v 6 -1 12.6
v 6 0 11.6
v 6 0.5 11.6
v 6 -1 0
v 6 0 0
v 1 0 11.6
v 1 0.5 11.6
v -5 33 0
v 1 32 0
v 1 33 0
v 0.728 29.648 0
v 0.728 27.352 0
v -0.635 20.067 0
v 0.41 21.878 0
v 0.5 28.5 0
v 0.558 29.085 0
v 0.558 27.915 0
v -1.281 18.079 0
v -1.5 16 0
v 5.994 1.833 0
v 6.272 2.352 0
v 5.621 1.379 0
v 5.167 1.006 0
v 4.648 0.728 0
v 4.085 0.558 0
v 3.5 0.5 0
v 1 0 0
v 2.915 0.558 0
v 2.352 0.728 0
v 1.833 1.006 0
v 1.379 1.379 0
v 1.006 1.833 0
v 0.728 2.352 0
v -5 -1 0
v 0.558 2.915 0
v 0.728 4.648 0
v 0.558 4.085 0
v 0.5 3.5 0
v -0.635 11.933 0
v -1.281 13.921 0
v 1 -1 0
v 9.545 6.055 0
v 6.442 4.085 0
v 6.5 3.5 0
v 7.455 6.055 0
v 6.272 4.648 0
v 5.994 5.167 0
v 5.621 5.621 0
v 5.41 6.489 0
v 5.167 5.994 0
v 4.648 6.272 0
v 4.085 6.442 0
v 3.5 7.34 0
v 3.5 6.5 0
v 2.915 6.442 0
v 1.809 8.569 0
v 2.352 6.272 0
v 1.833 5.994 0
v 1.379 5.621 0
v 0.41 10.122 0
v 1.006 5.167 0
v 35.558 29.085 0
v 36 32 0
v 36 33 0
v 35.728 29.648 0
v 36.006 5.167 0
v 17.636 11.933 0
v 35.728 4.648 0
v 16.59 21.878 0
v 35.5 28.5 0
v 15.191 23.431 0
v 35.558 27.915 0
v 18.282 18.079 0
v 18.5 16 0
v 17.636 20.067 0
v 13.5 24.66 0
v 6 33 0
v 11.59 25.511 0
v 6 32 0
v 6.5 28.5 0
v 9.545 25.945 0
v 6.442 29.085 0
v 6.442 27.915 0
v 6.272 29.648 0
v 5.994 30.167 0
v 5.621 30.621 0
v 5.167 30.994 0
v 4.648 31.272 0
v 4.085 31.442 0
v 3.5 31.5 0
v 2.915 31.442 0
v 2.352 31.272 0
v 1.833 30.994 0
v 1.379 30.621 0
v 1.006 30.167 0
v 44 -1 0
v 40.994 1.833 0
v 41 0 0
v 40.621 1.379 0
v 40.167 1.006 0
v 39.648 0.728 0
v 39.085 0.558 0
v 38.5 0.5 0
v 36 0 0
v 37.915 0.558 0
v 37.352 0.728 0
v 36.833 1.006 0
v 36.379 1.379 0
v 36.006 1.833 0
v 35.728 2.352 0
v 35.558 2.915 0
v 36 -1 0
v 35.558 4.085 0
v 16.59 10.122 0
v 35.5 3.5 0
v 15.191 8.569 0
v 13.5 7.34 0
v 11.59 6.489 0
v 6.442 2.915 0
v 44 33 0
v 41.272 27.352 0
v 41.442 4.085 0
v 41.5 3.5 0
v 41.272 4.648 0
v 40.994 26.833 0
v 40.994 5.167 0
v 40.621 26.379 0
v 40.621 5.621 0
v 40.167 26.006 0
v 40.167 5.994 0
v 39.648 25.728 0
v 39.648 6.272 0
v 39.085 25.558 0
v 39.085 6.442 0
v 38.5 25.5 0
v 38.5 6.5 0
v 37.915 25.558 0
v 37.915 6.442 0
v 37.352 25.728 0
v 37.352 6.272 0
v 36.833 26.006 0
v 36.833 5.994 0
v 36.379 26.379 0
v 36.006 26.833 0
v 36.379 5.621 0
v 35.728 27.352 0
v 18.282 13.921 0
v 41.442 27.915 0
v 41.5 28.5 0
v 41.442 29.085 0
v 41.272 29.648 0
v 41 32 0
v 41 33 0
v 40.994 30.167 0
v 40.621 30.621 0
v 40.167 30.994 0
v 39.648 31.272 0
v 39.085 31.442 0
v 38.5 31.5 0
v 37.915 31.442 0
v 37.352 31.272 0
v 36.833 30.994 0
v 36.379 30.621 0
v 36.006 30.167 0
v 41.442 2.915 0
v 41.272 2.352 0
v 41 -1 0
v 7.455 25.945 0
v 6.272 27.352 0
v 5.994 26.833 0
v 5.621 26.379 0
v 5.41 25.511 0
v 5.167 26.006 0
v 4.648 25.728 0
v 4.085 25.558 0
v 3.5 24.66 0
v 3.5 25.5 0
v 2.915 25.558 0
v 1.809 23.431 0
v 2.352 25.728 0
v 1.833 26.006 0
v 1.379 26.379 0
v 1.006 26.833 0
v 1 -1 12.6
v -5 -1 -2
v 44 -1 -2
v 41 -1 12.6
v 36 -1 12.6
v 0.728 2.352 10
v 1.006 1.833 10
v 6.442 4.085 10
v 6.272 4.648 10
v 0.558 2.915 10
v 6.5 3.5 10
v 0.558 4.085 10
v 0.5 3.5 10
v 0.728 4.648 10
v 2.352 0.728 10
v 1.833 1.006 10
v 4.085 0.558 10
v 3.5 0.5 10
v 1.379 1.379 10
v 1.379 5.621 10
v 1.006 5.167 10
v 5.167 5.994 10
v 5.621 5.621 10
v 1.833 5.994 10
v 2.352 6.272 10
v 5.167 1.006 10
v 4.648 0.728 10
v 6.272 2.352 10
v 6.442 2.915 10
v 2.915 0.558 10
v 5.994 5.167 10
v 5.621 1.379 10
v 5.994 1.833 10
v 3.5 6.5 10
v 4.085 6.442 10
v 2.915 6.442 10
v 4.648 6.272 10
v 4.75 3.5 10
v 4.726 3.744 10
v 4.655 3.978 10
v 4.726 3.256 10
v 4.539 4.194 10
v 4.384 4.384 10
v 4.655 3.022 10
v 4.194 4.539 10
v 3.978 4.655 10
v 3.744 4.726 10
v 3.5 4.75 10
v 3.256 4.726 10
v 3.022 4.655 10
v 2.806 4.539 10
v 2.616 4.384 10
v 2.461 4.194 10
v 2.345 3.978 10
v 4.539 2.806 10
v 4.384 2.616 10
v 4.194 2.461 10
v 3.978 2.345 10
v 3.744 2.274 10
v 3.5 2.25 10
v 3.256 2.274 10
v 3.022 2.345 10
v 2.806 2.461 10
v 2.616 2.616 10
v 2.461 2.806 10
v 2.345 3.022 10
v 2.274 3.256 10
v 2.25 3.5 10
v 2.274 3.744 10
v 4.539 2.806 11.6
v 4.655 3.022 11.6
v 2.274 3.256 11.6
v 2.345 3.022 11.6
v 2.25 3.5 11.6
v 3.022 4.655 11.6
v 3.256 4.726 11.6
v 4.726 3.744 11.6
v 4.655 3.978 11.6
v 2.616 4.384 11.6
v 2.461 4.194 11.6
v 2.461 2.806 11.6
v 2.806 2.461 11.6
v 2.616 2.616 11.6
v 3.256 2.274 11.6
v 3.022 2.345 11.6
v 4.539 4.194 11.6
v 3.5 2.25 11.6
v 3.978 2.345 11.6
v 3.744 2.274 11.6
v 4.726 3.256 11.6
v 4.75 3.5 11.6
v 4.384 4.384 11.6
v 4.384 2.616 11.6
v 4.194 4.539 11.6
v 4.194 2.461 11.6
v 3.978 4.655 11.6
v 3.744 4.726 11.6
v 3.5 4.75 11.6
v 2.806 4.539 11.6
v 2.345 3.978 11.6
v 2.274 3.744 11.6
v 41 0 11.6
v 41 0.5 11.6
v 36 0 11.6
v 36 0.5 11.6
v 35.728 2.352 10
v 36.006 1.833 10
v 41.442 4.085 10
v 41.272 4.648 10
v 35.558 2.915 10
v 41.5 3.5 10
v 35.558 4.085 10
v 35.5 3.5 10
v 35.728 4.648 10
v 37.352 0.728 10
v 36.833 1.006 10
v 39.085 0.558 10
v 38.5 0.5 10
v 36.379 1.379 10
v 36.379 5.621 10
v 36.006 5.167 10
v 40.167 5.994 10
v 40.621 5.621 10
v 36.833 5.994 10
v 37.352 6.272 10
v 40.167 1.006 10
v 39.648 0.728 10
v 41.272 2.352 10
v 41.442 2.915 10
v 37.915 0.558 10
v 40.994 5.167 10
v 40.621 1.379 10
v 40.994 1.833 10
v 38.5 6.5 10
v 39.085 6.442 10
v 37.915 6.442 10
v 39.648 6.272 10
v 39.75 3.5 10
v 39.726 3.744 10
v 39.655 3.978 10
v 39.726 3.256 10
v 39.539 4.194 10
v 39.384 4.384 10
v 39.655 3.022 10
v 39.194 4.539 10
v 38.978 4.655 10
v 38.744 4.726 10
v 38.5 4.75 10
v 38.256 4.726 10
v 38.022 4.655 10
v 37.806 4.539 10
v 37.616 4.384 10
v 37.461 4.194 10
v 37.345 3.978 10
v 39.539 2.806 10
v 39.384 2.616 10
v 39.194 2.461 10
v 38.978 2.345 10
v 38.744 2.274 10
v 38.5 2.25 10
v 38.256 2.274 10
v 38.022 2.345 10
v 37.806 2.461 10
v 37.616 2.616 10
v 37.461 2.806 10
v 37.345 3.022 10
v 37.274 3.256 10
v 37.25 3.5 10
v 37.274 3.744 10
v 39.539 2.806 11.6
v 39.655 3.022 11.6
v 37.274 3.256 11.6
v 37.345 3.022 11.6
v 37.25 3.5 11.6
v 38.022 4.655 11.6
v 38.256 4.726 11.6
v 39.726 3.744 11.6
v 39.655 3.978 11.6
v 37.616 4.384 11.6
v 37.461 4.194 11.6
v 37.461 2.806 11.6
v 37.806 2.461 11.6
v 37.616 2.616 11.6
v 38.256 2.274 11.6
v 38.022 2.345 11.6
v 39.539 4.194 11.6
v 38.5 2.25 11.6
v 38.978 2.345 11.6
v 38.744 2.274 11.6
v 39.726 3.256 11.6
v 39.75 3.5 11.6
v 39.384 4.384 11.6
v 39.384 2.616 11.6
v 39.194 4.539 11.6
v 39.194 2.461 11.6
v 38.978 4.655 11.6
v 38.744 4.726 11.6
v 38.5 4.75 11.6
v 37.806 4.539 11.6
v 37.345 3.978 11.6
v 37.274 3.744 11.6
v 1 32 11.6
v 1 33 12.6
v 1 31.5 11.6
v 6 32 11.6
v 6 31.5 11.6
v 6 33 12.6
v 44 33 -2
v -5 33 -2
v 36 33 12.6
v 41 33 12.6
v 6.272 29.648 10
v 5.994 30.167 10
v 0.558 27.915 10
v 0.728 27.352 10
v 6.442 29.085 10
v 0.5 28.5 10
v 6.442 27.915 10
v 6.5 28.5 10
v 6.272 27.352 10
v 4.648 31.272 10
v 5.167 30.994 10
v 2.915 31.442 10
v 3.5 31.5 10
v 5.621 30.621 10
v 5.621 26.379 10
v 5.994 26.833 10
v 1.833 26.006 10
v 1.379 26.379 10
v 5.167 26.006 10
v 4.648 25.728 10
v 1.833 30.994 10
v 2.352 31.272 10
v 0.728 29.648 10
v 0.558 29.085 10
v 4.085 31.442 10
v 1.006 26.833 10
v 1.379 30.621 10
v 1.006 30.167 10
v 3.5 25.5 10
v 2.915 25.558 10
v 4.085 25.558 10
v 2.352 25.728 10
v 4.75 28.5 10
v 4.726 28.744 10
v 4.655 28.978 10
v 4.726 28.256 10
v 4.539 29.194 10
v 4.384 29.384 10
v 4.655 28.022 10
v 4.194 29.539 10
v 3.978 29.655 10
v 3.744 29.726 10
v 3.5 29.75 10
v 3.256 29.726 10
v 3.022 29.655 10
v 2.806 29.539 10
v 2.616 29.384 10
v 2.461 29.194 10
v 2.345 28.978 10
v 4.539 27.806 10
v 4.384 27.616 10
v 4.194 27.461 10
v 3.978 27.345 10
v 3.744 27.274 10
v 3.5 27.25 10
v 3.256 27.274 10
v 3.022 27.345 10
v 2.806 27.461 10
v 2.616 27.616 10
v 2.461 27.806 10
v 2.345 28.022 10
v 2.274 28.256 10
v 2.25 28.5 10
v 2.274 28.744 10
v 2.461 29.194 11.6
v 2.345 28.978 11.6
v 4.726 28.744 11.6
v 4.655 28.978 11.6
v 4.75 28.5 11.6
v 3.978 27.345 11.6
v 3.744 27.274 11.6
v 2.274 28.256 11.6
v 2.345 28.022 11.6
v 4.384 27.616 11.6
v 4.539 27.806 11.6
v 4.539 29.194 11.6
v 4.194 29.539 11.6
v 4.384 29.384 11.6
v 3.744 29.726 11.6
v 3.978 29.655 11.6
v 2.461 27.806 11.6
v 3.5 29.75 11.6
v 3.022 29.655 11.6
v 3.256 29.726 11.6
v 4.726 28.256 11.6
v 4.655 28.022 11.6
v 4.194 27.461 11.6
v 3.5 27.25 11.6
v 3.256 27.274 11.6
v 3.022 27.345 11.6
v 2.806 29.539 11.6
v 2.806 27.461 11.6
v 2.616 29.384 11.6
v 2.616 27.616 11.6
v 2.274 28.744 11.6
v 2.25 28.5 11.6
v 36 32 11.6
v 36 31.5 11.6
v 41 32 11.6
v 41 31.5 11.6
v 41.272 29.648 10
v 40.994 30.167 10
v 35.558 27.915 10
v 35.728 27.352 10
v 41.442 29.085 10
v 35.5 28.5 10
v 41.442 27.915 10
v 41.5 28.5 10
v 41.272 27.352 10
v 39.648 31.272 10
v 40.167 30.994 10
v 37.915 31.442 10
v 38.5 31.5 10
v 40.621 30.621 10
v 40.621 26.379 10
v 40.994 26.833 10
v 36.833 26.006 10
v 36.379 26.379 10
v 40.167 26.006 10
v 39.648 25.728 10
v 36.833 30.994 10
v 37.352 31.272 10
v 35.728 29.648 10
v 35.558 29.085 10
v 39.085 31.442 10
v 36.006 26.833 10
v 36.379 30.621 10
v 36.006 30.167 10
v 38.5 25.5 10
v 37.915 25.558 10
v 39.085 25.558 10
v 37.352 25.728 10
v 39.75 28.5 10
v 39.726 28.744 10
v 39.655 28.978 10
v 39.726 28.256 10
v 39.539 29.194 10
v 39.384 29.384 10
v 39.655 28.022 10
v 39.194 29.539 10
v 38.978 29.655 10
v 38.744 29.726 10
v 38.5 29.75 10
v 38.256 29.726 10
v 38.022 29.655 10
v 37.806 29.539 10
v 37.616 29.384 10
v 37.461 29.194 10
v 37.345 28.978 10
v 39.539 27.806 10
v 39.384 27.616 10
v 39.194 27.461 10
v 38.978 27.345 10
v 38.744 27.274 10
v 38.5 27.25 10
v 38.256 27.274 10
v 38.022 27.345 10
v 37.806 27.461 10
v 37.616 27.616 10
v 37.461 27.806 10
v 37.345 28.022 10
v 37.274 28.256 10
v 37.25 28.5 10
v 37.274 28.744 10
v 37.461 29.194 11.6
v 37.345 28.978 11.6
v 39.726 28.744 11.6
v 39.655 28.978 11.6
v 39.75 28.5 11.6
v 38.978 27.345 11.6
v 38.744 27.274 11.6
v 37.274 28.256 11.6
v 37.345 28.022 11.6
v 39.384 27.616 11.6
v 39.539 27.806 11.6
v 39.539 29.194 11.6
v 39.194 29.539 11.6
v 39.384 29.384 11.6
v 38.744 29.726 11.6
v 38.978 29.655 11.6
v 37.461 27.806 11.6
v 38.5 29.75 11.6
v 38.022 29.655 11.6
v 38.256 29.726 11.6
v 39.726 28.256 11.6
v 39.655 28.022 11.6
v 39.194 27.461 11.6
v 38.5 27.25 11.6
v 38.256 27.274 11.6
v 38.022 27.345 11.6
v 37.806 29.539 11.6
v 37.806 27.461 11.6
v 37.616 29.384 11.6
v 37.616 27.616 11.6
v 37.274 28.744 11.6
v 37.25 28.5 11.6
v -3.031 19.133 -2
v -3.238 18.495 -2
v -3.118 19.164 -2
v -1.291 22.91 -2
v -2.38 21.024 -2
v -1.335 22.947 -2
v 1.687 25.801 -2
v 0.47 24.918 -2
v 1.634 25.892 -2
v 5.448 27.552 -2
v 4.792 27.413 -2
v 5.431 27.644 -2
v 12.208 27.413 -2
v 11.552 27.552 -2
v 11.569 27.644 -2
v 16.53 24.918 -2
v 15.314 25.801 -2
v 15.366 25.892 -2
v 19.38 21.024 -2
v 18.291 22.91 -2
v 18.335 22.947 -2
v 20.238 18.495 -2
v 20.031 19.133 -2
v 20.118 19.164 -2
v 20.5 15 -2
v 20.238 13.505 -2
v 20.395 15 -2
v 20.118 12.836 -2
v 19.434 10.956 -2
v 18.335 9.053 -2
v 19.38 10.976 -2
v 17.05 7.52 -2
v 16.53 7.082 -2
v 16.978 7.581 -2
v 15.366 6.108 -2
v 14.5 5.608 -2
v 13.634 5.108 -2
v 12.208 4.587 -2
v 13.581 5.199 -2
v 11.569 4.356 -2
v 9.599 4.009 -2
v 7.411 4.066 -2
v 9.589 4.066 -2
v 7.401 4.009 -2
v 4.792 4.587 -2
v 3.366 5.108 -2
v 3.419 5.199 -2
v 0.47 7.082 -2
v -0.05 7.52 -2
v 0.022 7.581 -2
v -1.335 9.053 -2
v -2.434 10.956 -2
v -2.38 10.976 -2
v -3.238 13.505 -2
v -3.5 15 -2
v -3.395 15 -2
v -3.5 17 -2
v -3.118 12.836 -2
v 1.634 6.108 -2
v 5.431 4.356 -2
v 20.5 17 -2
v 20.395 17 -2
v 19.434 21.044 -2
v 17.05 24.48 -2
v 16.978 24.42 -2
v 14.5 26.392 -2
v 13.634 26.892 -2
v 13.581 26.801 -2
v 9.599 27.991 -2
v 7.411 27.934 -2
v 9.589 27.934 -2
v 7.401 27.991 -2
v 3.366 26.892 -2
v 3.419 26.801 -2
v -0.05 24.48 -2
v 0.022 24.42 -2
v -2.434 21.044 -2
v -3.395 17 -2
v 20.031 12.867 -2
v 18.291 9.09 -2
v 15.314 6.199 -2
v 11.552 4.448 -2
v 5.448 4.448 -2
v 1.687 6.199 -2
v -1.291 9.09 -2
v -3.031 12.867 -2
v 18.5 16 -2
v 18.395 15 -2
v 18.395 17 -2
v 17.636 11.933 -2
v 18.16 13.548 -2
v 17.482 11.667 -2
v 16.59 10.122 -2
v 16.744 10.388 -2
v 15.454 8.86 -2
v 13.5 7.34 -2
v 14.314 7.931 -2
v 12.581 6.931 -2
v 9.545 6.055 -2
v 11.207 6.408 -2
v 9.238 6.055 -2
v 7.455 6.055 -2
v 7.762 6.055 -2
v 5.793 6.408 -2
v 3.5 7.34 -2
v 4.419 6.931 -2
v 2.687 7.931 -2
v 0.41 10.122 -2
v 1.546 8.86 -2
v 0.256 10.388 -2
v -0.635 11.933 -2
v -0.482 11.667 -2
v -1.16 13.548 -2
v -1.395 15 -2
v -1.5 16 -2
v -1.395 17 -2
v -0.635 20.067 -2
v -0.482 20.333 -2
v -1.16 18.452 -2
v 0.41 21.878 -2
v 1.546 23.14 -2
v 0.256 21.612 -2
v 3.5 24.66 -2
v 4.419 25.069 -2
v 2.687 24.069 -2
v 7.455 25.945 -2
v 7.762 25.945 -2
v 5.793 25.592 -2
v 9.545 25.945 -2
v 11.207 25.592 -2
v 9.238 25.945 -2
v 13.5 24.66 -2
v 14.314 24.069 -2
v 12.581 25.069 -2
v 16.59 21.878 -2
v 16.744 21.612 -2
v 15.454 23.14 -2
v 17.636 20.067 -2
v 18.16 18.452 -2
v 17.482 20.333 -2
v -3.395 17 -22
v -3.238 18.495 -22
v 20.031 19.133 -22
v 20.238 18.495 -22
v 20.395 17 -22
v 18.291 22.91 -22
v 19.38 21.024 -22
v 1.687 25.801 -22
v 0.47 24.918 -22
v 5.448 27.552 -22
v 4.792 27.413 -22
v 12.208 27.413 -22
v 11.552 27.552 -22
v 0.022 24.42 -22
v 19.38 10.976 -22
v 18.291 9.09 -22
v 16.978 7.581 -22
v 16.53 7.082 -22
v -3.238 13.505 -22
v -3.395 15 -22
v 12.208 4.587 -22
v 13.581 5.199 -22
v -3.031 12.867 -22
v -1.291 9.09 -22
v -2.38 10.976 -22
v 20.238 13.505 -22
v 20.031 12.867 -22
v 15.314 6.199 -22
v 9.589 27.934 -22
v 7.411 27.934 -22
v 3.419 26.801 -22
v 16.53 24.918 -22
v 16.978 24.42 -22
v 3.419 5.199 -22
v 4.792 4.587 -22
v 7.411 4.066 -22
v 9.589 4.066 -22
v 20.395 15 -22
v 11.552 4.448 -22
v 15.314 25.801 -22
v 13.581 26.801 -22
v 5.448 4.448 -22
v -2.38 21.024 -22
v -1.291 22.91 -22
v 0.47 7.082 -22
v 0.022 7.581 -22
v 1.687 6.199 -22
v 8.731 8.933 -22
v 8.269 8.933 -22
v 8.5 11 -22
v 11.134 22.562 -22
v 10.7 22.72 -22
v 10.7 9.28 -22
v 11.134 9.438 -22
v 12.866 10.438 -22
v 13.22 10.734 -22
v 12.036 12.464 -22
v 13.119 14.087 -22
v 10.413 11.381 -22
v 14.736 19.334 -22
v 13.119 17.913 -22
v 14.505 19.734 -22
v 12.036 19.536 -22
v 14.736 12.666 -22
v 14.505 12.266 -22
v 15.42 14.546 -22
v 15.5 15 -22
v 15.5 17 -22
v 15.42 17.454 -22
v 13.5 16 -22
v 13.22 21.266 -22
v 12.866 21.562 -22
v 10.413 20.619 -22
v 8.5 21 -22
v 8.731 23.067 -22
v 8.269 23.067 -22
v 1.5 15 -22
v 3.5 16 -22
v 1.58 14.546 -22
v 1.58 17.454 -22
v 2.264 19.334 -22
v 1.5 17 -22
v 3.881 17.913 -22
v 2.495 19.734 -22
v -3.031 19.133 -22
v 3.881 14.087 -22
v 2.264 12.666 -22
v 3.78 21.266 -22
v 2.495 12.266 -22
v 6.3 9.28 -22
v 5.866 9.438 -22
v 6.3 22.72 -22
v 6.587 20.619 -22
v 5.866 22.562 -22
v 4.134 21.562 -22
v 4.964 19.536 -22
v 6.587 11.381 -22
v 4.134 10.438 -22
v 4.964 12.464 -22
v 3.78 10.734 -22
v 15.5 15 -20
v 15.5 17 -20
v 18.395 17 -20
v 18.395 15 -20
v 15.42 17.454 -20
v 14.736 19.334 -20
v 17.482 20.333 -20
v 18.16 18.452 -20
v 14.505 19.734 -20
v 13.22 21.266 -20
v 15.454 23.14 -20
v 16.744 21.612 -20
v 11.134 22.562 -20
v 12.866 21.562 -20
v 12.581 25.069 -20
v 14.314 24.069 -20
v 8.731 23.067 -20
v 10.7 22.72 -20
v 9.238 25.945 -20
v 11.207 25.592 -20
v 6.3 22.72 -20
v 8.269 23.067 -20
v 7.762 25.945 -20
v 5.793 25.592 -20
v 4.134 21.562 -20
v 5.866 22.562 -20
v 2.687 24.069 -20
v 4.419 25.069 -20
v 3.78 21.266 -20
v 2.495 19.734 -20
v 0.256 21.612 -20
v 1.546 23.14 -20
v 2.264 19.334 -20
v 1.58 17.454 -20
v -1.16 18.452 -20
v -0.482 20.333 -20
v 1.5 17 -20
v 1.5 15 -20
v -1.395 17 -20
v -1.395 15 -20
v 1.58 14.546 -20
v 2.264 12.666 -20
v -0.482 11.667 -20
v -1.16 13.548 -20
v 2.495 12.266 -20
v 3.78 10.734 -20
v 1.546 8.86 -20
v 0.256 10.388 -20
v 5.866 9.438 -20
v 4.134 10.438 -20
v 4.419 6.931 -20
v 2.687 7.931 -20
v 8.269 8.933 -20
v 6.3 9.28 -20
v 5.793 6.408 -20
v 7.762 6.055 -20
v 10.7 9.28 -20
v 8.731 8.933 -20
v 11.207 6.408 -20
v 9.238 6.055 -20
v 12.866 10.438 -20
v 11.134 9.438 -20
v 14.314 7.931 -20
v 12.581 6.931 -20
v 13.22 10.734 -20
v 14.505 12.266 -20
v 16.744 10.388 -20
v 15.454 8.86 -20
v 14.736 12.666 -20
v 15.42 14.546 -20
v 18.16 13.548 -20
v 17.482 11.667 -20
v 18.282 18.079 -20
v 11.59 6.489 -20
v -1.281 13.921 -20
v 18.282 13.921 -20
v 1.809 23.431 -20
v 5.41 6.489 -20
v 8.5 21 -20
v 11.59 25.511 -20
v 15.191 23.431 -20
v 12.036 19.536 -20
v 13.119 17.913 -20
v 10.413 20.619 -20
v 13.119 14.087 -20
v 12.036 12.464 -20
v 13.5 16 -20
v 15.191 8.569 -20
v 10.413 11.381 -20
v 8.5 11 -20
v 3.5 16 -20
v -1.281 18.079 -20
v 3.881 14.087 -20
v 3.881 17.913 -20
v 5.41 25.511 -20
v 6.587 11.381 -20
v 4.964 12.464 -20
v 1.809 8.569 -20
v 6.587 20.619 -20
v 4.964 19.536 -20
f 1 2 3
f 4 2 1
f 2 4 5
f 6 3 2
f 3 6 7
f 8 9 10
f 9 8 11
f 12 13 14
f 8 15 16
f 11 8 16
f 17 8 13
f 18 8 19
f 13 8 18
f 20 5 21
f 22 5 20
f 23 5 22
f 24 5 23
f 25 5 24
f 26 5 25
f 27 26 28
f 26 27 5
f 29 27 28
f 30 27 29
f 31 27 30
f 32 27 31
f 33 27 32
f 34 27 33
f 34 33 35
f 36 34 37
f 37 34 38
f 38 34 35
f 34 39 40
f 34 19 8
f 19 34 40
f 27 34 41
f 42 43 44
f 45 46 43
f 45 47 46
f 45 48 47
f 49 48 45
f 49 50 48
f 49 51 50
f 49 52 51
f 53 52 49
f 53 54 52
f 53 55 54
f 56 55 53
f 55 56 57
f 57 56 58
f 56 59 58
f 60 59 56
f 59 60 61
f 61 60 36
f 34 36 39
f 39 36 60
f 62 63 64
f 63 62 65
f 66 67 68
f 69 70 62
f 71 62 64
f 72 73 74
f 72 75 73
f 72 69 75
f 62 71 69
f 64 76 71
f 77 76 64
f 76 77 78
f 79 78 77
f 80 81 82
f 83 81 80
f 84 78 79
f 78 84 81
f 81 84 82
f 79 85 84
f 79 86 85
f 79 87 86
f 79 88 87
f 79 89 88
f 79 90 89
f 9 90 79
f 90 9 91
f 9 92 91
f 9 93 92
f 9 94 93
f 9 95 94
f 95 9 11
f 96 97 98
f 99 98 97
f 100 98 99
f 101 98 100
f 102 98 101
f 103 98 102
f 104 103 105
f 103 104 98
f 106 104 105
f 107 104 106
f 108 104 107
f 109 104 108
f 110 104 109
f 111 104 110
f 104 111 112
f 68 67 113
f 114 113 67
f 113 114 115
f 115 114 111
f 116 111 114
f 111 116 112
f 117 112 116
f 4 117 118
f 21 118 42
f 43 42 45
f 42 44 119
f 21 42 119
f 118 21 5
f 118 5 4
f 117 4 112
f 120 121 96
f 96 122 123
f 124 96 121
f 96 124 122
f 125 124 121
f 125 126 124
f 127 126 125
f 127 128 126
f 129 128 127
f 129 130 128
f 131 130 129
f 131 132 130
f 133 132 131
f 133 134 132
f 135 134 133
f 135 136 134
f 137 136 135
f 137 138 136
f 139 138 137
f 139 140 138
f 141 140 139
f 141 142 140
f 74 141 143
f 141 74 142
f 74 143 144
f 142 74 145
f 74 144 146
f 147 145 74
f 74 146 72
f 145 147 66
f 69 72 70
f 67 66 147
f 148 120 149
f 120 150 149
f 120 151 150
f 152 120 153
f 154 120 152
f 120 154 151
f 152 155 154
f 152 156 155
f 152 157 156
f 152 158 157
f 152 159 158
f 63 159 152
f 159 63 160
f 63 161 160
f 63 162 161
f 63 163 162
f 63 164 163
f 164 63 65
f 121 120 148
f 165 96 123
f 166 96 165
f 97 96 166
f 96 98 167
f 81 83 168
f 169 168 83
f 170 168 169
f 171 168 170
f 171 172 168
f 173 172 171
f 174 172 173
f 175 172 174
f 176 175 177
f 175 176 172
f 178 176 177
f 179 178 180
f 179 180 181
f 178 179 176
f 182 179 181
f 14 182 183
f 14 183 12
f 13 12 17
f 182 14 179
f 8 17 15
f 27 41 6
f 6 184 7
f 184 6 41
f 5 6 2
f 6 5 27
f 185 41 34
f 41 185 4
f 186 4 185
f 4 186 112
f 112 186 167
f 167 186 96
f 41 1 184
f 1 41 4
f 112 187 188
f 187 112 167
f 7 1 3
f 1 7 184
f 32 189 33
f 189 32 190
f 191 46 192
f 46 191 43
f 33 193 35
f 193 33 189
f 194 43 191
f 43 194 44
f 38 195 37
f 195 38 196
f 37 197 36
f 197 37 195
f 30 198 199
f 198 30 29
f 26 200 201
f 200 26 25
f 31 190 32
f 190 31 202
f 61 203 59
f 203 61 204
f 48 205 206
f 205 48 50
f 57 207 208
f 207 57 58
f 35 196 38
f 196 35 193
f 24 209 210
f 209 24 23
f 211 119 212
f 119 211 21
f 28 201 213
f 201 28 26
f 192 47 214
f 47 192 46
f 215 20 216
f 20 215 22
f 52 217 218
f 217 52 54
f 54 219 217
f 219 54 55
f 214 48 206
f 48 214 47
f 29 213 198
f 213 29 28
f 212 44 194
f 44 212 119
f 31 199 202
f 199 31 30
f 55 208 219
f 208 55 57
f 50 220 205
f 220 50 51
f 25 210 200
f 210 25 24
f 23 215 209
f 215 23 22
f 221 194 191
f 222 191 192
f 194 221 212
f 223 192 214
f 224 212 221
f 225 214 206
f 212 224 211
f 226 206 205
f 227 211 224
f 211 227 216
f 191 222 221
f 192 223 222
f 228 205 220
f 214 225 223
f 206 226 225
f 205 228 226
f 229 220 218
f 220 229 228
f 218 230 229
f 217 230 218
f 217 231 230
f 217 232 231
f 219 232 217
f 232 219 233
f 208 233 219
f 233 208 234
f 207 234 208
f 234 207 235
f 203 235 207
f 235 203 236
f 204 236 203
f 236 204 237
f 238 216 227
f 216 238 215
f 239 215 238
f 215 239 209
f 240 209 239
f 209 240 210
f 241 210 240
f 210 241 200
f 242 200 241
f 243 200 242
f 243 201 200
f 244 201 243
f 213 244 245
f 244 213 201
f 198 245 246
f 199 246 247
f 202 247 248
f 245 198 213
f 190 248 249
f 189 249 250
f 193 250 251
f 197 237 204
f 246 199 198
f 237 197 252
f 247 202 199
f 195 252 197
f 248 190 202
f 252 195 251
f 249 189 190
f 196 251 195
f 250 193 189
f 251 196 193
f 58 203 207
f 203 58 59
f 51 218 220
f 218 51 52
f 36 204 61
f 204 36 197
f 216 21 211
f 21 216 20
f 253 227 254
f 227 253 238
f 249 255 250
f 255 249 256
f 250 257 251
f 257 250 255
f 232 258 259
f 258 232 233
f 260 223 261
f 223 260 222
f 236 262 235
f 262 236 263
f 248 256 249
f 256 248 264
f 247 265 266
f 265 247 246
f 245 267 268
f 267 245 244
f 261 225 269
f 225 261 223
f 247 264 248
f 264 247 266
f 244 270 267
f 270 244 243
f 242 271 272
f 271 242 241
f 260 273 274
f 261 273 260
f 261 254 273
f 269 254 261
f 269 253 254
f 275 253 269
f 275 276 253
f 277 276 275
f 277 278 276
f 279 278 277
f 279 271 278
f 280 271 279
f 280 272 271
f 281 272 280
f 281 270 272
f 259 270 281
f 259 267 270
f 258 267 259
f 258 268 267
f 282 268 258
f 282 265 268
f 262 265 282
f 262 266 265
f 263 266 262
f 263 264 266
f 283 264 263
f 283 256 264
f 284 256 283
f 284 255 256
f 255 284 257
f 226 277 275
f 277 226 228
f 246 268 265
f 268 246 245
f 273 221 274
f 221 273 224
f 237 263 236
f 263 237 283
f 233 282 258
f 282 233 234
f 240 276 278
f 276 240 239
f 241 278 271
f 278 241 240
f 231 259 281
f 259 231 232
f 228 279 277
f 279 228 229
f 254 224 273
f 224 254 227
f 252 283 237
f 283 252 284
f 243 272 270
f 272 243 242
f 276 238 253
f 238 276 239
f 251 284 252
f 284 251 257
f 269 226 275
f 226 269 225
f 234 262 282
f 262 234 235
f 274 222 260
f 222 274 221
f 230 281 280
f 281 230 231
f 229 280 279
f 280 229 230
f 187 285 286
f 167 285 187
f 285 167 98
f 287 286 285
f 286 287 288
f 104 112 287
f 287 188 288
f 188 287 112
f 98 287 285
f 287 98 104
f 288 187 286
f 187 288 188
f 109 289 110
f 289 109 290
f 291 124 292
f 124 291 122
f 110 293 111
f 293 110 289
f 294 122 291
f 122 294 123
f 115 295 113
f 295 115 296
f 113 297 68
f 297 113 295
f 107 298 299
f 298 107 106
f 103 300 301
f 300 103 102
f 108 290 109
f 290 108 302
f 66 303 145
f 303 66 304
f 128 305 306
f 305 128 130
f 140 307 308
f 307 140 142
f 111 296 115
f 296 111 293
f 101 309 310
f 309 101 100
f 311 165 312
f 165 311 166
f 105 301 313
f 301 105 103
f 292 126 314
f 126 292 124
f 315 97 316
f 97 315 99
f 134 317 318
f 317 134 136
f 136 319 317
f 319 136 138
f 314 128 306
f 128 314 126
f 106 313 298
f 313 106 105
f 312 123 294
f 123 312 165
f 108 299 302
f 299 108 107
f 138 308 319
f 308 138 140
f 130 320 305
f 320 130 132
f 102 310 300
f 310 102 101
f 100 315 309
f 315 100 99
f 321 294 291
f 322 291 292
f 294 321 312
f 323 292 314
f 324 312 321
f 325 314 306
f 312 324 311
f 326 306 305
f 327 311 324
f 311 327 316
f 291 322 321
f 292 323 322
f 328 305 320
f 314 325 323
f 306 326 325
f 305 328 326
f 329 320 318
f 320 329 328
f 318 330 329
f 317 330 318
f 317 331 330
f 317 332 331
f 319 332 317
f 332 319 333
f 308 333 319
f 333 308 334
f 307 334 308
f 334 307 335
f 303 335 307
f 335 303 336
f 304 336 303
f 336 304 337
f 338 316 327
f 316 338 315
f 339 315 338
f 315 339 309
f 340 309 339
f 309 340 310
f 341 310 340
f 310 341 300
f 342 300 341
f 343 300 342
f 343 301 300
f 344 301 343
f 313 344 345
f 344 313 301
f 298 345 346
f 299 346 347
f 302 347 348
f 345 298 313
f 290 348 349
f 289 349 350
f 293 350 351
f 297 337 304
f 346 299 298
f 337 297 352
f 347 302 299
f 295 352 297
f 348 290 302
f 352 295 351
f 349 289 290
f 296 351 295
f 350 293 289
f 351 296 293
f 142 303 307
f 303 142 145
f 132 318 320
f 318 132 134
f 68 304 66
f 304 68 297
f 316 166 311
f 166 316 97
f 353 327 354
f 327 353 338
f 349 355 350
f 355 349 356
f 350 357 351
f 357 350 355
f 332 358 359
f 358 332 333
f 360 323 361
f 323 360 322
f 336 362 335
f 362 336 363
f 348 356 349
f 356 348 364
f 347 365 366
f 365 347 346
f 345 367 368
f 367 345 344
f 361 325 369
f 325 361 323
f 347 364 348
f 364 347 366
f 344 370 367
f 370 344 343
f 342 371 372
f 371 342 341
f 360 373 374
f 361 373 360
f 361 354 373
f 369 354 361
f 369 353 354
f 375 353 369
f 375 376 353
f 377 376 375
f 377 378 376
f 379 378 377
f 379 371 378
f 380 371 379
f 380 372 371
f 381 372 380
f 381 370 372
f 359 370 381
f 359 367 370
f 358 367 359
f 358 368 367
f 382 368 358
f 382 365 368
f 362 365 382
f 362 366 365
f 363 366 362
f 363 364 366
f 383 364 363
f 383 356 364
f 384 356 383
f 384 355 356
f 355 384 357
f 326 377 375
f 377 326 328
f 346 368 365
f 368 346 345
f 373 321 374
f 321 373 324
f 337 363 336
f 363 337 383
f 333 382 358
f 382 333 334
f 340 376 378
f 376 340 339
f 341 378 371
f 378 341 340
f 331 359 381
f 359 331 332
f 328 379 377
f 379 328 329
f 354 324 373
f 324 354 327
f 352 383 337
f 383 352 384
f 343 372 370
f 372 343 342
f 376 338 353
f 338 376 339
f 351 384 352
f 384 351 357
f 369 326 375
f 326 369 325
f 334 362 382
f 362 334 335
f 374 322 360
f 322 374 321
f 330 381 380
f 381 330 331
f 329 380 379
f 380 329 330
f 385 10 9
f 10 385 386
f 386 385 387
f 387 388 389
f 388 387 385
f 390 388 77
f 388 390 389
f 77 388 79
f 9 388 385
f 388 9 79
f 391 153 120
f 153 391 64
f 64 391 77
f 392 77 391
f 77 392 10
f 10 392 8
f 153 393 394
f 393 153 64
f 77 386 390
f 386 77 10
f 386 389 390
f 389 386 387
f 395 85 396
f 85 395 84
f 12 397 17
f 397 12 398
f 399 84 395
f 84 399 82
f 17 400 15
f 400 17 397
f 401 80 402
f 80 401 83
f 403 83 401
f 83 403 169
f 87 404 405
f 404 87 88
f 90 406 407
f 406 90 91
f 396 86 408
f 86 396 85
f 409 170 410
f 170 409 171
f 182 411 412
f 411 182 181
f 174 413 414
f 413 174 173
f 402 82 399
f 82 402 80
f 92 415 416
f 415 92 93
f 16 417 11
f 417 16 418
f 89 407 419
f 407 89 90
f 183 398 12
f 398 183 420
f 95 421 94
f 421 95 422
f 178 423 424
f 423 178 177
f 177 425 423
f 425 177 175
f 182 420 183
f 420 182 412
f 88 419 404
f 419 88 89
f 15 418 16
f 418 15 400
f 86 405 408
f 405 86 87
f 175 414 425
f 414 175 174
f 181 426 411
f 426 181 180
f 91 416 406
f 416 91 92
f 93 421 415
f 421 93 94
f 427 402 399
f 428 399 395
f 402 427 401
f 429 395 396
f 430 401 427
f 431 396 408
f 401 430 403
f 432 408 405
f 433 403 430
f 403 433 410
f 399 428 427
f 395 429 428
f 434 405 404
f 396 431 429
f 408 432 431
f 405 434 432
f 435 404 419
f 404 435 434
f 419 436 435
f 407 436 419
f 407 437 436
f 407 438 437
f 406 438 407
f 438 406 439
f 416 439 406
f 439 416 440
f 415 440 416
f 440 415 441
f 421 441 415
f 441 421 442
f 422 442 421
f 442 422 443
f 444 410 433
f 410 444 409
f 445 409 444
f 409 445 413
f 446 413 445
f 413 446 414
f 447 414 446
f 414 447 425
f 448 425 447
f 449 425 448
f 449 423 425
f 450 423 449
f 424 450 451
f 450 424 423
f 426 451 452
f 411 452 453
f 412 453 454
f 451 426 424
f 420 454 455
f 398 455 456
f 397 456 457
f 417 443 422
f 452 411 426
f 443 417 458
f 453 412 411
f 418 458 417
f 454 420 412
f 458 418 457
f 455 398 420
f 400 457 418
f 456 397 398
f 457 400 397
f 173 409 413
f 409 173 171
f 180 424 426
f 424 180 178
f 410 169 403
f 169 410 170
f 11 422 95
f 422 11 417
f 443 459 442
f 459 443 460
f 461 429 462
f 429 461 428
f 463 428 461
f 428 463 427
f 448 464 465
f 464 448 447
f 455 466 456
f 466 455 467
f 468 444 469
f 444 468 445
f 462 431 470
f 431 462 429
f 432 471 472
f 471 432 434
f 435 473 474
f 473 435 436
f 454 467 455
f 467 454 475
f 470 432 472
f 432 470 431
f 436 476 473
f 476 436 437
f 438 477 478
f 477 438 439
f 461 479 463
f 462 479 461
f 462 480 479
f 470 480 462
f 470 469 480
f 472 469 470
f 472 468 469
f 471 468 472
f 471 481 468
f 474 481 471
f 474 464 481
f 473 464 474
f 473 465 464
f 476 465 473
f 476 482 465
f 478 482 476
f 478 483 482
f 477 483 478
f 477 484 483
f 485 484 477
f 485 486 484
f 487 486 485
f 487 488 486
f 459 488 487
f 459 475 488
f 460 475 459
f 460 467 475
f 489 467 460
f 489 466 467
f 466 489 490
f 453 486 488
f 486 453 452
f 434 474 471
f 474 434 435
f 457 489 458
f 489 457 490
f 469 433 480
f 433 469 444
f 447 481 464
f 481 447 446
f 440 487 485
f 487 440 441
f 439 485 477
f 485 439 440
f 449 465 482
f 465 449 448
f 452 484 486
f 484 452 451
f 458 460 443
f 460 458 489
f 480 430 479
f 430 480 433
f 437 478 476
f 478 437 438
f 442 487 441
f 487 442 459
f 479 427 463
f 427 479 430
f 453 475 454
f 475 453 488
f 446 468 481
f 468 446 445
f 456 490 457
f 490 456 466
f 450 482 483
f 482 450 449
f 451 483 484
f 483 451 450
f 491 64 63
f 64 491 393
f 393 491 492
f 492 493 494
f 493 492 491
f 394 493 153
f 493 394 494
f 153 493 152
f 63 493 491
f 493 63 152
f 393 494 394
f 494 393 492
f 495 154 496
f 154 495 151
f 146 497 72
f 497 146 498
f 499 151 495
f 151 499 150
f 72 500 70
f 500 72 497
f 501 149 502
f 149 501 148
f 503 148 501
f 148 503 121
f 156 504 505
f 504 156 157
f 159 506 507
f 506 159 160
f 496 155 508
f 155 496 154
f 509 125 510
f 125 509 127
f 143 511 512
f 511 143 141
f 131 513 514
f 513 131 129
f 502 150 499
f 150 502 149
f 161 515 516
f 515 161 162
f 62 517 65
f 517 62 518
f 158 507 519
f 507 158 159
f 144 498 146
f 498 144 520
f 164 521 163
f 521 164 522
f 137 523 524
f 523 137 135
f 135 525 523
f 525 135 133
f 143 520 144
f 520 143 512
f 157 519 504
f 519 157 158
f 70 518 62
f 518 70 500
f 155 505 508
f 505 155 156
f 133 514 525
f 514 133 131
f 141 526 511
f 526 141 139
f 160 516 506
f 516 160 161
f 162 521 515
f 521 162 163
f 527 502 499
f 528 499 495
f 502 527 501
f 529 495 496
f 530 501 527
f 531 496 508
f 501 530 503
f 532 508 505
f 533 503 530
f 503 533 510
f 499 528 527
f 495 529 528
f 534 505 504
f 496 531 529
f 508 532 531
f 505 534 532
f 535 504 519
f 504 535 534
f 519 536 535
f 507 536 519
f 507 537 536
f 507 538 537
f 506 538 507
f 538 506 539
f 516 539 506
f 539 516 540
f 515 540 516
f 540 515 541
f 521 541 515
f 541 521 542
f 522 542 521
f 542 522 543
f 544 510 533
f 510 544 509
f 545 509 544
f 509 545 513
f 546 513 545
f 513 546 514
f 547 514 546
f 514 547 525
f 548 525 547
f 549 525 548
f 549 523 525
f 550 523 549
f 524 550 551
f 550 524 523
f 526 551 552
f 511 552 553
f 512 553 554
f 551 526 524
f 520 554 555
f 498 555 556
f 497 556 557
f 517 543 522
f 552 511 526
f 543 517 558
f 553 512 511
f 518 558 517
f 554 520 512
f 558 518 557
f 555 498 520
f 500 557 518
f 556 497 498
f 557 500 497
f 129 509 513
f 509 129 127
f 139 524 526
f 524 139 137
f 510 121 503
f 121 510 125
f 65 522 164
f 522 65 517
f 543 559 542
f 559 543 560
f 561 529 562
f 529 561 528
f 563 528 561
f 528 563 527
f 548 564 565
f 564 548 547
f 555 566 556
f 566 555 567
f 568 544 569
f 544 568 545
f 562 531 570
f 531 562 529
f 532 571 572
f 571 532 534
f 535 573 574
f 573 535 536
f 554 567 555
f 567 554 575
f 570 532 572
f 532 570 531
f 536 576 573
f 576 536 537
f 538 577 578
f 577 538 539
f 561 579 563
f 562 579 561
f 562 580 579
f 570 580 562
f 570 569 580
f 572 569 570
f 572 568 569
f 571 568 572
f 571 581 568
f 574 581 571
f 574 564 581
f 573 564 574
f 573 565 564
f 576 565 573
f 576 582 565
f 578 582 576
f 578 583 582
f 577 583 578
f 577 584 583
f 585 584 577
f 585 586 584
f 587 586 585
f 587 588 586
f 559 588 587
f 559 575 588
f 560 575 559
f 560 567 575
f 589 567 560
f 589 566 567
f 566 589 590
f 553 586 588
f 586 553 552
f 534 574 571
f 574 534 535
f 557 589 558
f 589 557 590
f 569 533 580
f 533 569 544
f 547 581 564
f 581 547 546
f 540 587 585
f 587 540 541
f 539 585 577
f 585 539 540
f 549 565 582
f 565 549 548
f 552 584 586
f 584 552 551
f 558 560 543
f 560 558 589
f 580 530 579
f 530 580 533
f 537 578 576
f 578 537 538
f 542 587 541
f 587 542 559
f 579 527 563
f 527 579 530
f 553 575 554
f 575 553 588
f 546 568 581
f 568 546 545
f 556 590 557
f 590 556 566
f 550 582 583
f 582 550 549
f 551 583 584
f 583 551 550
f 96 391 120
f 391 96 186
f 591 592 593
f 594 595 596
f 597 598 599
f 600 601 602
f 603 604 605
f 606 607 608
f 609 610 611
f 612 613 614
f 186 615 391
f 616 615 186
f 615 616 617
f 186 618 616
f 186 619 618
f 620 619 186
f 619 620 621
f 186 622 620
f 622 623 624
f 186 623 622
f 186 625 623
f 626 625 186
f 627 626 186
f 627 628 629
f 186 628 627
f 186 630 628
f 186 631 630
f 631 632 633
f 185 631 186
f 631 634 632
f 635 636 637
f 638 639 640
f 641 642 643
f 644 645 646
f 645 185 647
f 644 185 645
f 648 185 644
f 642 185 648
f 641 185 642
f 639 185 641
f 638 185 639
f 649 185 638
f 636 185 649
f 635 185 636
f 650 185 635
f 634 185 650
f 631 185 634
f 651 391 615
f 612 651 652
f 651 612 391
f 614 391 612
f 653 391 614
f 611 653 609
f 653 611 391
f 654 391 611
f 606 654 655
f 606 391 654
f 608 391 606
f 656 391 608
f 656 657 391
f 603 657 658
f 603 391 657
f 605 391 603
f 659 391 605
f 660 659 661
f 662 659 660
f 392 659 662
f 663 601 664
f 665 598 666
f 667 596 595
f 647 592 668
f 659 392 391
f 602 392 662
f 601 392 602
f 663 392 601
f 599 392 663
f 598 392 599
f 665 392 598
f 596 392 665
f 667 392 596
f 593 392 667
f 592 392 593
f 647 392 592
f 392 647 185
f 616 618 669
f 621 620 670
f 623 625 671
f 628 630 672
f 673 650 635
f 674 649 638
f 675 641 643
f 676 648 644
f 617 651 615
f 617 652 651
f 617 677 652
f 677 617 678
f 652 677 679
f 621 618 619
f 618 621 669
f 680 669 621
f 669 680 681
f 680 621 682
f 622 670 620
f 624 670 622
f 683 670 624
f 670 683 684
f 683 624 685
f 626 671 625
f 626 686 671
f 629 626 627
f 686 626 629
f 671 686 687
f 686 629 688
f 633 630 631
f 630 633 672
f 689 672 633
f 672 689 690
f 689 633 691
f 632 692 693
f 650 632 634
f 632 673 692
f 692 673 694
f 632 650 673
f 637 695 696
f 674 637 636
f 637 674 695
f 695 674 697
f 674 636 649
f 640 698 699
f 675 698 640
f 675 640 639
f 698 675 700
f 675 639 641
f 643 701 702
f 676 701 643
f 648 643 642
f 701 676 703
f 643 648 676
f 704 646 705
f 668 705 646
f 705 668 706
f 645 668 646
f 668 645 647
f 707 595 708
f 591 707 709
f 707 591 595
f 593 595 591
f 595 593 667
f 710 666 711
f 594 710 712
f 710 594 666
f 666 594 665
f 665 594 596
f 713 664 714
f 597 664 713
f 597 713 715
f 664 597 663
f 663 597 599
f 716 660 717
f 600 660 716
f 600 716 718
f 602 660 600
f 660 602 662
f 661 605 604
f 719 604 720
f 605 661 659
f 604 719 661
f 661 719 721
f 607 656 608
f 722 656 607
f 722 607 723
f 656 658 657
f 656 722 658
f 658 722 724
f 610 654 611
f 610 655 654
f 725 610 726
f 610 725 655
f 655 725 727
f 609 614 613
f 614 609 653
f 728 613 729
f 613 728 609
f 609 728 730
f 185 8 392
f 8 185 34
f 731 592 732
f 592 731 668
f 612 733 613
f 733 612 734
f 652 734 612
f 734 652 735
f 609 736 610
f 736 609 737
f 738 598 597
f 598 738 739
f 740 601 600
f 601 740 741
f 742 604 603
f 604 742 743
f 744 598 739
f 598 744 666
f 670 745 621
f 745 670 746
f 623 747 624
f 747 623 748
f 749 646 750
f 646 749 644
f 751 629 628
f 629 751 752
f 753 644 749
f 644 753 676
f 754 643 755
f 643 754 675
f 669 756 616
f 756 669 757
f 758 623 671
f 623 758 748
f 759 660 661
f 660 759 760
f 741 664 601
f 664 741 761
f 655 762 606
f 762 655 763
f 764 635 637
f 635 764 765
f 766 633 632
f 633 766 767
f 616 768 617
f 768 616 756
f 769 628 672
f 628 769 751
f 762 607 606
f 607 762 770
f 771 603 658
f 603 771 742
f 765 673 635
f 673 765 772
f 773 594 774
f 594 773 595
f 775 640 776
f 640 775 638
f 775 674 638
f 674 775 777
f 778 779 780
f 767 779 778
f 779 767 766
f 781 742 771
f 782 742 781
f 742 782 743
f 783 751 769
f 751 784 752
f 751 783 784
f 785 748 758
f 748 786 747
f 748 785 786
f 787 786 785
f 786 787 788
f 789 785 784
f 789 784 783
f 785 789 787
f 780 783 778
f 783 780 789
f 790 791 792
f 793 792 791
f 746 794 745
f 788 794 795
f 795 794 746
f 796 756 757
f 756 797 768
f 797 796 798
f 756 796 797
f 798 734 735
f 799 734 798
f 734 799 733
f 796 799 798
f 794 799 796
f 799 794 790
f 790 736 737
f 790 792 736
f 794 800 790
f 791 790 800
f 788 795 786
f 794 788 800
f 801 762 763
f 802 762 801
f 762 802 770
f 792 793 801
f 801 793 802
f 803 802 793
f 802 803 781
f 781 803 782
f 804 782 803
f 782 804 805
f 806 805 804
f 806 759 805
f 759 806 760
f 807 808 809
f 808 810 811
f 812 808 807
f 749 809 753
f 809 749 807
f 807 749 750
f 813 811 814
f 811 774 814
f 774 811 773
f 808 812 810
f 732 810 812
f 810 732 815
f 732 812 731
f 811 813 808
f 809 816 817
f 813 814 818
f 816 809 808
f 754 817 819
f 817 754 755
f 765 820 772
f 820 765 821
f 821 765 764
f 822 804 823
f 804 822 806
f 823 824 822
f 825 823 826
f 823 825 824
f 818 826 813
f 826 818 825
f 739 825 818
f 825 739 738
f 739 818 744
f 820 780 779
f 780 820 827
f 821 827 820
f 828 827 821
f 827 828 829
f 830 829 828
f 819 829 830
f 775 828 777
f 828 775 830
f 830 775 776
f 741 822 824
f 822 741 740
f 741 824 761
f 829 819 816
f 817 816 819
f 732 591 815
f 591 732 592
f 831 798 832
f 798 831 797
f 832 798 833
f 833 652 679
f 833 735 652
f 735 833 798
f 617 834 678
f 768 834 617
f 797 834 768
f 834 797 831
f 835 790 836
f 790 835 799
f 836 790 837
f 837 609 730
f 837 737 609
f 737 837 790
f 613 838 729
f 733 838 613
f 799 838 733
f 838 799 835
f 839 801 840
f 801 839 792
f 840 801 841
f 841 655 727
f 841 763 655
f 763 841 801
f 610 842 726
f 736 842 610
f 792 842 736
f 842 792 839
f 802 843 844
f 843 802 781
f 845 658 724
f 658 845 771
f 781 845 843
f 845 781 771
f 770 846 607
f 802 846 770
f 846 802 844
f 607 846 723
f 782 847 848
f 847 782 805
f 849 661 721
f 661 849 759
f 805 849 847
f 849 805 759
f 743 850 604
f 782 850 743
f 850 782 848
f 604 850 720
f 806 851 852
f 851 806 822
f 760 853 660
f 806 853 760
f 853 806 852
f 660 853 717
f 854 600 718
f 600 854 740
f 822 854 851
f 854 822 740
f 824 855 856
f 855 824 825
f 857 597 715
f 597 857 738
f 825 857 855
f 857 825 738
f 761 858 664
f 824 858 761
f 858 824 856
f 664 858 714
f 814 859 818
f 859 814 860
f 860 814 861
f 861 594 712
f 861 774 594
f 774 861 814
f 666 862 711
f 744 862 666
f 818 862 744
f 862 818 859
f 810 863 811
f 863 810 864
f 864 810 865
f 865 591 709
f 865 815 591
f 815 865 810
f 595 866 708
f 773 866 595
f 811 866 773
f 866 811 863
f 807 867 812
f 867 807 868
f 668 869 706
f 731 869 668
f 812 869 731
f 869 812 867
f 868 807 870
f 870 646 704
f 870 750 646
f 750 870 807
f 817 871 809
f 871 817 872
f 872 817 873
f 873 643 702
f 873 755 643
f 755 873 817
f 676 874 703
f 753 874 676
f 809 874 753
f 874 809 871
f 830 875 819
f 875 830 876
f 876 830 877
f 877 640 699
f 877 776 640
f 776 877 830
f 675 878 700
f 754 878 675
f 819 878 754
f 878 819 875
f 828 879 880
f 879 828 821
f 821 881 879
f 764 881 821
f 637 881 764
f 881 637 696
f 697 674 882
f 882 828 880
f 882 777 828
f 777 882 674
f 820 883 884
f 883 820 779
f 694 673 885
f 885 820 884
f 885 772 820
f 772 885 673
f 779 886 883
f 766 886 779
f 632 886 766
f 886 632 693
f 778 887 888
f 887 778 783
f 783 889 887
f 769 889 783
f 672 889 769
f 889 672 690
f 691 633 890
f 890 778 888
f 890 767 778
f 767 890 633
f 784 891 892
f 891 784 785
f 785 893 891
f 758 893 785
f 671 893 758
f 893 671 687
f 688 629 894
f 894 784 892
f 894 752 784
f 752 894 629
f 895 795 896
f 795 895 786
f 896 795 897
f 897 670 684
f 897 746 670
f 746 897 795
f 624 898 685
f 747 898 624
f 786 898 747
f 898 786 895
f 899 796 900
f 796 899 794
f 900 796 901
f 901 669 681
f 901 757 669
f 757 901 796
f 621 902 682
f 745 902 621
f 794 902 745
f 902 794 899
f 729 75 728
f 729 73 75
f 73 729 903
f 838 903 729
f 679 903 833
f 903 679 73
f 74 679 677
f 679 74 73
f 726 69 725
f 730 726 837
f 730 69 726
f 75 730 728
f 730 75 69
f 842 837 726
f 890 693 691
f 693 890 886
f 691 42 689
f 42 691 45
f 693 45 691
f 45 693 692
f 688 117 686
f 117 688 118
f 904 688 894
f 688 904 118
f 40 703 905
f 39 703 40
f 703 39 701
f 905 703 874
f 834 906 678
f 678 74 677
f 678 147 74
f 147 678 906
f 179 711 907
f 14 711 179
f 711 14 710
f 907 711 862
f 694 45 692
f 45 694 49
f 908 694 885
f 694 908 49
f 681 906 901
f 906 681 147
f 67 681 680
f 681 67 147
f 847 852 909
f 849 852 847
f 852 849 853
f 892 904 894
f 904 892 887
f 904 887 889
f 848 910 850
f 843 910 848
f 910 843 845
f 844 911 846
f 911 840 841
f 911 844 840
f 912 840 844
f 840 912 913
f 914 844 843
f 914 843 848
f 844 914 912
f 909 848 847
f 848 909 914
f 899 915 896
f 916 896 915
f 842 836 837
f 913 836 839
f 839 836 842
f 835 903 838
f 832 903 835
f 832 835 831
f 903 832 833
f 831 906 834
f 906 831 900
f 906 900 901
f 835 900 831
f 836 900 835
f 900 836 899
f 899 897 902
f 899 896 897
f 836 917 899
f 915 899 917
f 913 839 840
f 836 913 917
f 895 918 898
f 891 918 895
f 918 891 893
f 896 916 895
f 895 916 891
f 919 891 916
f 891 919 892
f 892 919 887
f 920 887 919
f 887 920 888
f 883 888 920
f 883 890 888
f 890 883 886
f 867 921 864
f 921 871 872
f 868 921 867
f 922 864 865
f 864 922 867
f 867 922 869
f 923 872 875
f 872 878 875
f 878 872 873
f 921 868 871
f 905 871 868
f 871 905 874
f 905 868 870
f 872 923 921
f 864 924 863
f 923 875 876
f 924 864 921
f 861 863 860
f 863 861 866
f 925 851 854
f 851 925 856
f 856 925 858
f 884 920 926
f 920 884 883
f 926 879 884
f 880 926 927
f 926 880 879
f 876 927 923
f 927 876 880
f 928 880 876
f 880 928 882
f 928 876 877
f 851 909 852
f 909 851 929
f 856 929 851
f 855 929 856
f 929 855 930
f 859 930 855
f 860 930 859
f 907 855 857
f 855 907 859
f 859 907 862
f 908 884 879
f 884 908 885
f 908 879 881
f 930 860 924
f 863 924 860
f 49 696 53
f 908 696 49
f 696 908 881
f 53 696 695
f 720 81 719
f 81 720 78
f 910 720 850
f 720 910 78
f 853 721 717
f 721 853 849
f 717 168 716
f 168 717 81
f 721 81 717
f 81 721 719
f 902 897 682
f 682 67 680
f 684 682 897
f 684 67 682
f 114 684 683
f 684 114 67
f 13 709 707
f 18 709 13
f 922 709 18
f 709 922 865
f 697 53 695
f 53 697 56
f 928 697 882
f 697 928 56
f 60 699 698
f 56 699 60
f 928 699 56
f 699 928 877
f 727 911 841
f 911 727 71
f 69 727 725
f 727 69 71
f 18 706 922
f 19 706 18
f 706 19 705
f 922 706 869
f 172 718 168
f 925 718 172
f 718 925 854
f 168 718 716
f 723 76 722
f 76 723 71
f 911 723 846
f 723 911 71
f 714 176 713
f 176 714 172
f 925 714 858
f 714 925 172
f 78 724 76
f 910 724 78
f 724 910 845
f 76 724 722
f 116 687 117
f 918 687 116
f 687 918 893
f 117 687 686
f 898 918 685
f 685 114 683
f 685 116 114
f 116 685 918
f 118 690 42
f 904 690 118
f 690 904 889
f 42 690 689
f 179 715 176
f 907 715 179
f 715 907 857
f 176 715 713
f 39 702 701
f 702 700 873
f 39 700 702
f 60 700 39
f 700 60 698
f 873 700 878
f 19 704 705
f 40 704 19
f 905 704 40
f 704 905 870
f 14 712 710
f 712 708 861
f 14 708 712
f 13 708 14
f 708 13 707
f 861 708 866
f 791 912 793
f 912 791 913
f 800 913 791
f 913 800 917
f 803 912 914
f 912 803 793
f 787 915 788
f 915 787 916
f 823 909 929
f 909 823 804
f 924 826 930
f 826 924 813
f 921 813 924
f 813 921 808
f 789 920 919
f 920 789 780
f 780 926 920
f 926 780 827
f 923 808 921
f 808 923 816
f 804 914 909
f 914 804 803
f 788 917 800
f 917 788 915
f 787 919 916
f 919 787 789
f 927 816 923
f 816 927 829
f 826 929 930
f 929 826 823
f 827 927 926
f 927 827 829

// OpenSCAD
module clips(height=1, support=1, lock=0.5, width=5, board=2) {
    cube([width, support, board]);
    translate([0,0,board]) triangle(width=width, length=support+lock, height=height);
}


module triangle(width=5, length=2, height=3) {
    polyhedron( points=[
          [  0,  0,  0 ],  //0
          [ width,  0,  0 ],  //1
          [ width,  length,  0 ],  //2
          [  0,  length,  0 ],  //3
          [  0,  0,  height ],  //4
          [ width,  0,  height ],  //5
          ], 
      faces=[
          [0,1,2,3],[5,4,3,2],[0,4,5,1],[0,3,4],[5,2,1]
      ]);
}

module support_board(board=2, diam=5, distance=10, height=5, picot=2, width=5, support=1) {
    cylinder(d=diam, h=height, $fn=32);
    translate([0,0,height]) cylinder(d=picot, h=board, $fn=32);
    translate([width/2,distance+support,0]) rotate([0,0,180]) clips(board=board+height, width=width, support=support);
}

module support_co2sensor(board=1.6, diam=6, distance=3.5, picot=2.5, height=10, with_bottom=false) {
    translate([3.5,3.5,0]) rotate([0,0,180])support_board(board=board, diam=diam, distance=distance, picot=picot, height=height);
    translate([38.5,3.5,0]) rotate([0,0,180])support_board(board=board, diam=diam, distance=distance, picot=picot, height=height);
    translate([3.5,28.5,0]) rotate([0,0,0]) support_board(board=board, diam=diam, distance=distance, picot=picot, height=height);
    translate([38.5,28.5,0]) rotate([0,0,0]) support_board(board=board, diam=diam, distance=distance, picot=picot, height=height);
    if (with_bottom) translate([0,-1,-1.5]) cube([85, 56+2, 1.5]);
}


module cache_co2sensor(border=2, sensor_diam=20, sensor_height=30) {
    difference() {
        union() {
            translate([-5,-1,-border]) cube([38.5+3.5+2+5, 28.5+3.5+2, border]);
            translate([8.5,(28.5+3.5)/2,-sensor_height+10-border]) cylinder(d=sensor_diam+2*border, h=sensor_height+border-10);
        }
        translate([8.5,(28.5+3.5)/2,-sensor_height+10])  cylinder(d=sensor_diam, h=sensor_height);
        translate([8.5,(28.5+3.5)/2,-sensor_height+10-border])  cylinder(d=sensor_diam/2, h=sensor_height);
        for (i=[0:20:360]) {
            translate([8.5, (28.5+3.5)/2, 0]) {
                rotate([0,0,i]) {
                #translate([(sensor_diam/4)+border, -border/2, -sensor_height+10-border]) cube([(sensor_diam/4), border, sensor_height-10]);
                }
            }
        }
    }
    support_co2sensor();
}

cache_co2sensor();
